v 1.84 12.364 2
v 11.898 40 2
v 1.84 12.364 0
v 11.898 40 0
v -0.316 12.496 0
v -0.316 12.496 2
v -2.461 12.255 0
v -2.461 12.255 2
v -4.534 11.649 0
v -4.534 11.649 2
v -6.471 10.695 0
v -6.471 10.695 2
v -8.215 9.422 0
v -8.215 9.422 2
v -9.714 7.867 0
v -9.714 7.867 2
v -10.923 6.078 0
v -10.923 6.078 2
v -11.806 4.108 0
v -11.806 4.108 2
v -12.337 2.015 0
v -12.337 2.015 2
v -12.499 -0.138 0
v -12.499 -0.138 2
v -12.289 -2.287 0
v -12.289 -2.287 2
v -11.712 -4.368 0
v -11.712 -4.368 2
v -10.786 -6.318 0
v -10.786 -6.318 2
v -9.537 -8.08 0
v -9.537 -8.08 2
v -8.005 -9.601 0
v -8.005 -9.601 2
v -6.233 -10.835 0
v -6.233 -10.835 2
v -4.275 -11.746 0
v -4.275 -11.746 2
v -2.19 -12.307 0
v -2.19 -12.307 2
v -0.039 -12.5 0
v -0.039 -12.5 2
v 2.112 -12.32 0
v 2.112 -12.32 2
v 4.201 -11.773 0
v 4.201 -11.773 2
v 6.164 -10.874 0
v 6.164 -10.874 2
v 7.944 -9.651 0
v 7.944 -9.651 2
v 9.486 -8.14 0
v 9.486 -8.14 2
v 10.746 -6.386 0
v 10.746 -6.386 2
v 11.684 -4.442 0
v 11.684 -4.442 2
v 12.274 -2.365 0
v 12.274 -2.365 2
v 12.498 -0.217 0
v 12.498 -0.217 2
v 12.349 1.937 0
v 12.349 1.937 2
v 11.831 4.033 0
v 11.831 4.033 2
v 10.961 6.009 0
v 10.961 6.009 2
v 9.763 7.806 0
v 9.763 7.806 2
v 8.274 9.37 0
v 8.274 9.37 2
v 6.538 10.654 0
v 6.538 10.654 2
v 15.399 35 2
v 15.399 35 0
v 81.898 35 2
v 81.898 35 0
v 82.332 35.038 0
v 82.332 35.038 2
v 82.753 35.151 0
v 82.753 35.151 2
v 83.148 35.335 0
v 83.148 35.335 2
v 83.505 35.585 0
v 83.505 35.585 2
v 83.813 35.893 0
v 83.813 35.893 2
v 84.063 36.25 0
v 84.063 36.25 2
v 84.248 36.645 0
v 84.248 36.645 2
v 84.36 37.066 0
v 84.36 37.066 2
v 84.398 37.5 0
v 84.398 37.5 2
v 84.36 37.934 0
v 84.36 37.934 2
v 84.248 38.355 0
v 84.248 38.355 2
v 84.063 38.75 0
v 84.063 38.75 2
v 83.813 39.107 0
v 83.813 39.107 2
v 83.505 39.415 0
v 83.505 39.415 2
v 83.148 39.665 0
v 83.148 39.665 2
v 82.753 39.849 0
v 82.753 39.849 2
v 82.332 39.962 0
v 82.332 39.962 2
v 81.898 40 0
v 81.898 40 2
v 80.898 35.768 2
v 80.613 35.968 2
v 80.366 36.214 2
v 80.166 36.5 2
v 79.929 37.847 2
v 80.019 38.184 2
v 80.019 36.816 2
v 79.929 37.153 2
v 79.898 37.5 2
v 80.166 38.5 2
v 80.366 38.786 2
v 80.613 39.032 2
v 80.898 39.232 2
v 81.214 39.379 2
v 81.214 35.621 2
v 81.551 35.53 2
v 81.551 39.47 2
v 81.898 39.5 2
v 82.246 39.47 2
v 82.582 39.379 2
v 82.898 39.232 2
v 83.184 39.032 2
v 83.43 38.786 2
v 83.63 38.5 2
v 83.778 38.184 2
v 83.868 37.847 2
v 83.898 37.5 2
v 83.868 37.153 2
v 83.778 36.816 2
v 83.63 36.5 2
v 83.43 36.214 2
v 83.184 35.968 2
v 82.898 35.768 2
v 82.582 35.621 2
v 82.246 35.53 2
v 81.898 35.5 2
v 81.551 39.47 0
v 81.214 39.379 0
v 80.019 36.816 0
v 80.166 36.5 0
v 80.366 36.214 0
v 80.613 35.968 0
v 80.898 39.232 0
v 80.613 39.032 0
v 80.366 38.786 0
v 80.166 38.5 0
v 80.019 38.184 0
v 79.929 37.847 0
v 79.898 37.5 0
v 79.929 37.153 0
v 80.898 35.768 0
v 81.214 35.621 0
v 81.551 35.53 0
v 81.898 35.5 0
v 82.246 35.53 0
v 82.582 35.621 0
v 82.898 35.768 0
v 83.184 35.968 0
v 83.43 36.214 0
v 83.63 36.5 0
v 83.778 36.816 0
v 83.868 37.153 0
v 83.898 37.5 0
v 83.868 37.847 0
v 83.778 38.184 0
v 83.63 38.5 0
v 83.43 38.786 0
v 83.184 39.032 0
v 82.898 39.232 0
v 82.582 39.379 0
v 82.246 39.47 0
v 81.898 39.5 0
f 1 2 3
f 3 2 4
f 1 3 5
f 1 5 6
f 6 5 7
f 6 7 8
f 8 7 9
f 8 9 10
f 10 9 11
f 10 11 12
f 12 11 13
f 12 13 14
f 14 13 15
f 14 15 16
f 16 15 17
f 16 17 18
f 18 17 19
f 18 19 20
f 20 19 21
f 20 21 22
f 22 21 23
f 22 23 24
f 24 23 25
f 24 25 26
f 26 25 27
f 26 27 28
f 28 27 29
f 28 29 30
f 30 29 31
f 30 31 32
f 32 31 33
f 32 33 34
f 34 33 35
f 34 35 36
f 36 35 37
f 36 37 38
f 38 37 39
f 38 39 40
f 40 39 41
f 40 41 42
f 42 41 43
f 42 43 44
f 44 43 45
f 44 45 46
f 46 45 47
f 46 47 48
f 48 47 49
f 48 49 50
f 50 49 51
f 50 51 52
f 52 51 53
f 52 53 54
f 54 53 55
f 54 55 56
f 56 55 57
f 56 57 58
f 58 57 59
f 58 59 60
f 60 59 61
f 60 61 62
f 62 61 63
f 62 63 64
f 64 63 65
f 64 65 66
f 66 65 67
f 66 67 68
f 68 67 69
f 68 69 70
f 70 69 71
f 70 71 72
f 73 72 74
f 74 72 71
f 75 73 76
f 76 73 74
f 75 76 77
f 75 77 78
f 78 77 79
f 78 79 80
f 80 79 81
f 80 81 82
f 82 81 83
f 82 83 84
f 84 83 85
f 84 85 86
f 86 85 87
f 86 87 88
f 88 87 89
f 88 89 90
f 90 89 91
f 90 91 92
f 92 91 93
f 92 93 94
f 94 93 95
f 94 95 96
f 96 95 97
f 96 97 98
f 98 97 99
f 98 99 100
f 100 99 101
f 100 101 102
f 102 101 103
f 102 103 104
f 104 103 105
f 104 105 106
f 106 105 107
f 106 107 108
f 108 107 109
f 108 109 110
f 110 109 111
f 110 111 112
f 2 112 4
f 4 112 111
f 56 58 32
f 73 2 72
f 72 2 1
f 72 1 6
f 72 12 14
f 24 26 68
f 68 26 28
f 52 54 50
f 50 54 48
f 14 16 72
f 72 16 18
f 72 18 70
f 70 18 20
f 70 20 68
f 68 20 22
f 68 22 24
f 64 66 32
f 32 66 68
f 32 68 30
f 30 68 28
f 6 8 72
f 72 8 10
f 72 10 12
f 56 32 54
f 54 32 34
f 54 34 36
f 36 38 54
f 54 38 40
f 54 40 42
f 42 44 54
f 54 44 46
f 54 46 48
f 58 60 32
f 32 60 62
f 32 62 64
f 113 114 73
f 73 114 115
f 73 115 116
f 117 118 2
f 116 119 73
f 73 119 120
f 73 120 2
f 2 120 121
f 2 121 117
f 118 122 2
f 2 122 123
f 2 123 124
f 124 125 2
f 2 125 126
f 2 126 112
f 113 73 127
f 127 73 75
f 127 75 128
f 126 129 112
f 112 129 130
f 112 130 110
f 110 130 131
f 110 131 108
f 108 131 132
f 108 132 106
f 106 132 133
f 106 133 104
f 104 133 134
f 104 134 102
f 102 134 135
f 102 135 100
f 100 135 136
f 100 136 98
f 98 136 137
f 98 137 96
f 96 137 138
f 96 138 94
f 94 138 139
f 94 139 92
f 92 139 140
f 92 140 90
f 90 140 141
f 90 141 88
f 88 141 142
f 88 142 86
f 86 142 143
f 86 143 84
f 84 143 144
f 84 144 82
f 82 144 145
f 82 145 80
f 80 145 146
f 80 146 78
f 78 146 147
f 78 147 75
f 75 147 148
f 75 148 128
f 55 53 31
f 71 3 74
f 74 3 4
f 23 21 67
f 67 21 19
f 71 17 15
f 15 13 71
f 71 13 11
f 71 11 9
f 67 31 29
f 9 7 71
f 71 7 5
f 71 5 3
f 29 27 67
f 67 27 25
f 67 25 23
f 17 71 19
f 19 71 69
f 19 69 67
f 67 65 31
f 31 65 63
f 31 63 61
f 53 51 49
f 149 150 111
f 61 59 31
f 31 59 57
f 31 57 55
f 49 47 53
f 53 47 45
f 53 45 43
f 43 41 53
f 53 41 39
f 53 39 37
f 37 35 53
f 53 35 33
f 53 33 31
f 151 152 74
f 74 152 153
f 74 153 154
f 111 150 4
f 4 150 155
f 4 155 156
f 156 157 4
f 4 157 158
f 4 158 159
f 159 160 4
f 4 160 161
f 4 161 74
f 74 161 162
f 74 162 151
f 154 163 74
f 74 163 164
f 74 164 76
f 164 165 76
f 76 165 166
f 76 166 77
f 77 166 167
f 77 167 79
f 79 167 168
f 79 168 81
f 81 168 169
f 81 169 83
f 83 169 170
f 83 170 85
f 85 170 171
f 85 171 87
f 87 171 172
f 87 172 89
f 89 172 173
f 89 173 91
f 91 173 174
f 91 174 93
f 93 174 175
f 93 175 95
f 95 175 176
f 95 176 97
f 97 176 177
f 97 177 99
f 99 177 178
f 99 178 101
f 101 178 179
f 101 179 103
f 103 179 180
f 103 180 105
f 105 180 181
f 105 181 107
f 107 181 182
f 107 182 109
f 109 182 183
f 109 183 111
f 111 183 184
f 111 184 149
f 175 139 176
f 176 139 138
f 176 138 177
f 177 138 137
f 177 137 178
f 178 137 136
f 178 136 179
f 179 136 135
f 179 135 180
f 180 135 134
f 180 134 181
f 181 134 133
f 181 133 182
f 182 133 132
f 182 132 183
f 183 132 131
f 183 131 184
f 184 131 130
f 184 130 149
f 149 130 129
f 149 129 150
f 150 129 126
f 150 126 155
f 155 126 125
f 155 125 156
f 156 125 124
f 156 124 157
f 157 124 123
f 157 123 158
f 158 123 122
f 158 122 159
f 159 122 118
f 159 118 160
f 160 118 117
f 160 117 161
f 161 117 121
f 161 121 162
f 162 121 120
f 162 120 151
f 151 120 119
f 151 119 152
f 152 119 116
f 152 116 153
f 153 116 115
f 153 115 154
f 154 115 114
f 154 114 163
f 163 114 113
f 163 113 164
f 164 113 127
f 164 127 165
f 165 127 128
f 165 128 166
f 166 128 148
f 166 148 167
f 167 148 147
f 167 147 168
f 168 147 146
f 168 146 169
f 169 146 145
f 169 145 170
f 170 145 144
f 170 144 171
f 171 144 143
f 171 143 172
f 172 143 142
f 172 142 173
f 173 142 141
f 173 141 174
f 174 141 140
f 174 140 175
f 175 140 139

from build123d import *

# Parameters (mm, degrees)
BOSS_EXTRUDE1_DEPTH = 2
SKETCH4_R           = 2
CUT_EXTRUDE1_DEPTH  = 5


with BuildPart() as part:
    # Sketch1 → Boss-Extrude1 (new body)
    with BuildSketch(Plane.XY):
        with BuildLine():
            Line((9.503526384, 33.420205662), (11.898379024, 40))
            Line((11.898379024, 40), (18.900451053, 40))
            Line((18.900451053, 40), (81.898379024, 40))
            ThreePointArc((81.898379024, 40), (84.398379024, 37.5), (81.898379024, 35))
            Line((81.898379024, 35), (22.362429948, 35))
            Line((22.362429948, 35), (15.399415038, 35))
            Line((15.399415038, 35), (13.292753309, 29.212002571))
            Line((13.292753309, 29.212002571), (6.538105716, 10.653786822))
            ThreePointArc((6.538105716, 10.653786822), (-4.275251792, -11.74615776), (1.839642613, 12.363887538))
            Line((1.839642613, 12.363887538), (9.503526384, 33.420205662))
        make_face()
    extrude(amount=BOSS_EXTRUDE1_DEPTH)

    # Sketch4 → Cut-Extrude1 (cut)
    with BuildSketch(Plane.XY.offset(2)):
        with Locations((81.898379024, 37.5)):
            Circle(SKETCH4_R)
    extrude(amount=-CUT_EXTRUDE1_DEPTH, mode=Mode.SUBTRACT)


solid = part.part
